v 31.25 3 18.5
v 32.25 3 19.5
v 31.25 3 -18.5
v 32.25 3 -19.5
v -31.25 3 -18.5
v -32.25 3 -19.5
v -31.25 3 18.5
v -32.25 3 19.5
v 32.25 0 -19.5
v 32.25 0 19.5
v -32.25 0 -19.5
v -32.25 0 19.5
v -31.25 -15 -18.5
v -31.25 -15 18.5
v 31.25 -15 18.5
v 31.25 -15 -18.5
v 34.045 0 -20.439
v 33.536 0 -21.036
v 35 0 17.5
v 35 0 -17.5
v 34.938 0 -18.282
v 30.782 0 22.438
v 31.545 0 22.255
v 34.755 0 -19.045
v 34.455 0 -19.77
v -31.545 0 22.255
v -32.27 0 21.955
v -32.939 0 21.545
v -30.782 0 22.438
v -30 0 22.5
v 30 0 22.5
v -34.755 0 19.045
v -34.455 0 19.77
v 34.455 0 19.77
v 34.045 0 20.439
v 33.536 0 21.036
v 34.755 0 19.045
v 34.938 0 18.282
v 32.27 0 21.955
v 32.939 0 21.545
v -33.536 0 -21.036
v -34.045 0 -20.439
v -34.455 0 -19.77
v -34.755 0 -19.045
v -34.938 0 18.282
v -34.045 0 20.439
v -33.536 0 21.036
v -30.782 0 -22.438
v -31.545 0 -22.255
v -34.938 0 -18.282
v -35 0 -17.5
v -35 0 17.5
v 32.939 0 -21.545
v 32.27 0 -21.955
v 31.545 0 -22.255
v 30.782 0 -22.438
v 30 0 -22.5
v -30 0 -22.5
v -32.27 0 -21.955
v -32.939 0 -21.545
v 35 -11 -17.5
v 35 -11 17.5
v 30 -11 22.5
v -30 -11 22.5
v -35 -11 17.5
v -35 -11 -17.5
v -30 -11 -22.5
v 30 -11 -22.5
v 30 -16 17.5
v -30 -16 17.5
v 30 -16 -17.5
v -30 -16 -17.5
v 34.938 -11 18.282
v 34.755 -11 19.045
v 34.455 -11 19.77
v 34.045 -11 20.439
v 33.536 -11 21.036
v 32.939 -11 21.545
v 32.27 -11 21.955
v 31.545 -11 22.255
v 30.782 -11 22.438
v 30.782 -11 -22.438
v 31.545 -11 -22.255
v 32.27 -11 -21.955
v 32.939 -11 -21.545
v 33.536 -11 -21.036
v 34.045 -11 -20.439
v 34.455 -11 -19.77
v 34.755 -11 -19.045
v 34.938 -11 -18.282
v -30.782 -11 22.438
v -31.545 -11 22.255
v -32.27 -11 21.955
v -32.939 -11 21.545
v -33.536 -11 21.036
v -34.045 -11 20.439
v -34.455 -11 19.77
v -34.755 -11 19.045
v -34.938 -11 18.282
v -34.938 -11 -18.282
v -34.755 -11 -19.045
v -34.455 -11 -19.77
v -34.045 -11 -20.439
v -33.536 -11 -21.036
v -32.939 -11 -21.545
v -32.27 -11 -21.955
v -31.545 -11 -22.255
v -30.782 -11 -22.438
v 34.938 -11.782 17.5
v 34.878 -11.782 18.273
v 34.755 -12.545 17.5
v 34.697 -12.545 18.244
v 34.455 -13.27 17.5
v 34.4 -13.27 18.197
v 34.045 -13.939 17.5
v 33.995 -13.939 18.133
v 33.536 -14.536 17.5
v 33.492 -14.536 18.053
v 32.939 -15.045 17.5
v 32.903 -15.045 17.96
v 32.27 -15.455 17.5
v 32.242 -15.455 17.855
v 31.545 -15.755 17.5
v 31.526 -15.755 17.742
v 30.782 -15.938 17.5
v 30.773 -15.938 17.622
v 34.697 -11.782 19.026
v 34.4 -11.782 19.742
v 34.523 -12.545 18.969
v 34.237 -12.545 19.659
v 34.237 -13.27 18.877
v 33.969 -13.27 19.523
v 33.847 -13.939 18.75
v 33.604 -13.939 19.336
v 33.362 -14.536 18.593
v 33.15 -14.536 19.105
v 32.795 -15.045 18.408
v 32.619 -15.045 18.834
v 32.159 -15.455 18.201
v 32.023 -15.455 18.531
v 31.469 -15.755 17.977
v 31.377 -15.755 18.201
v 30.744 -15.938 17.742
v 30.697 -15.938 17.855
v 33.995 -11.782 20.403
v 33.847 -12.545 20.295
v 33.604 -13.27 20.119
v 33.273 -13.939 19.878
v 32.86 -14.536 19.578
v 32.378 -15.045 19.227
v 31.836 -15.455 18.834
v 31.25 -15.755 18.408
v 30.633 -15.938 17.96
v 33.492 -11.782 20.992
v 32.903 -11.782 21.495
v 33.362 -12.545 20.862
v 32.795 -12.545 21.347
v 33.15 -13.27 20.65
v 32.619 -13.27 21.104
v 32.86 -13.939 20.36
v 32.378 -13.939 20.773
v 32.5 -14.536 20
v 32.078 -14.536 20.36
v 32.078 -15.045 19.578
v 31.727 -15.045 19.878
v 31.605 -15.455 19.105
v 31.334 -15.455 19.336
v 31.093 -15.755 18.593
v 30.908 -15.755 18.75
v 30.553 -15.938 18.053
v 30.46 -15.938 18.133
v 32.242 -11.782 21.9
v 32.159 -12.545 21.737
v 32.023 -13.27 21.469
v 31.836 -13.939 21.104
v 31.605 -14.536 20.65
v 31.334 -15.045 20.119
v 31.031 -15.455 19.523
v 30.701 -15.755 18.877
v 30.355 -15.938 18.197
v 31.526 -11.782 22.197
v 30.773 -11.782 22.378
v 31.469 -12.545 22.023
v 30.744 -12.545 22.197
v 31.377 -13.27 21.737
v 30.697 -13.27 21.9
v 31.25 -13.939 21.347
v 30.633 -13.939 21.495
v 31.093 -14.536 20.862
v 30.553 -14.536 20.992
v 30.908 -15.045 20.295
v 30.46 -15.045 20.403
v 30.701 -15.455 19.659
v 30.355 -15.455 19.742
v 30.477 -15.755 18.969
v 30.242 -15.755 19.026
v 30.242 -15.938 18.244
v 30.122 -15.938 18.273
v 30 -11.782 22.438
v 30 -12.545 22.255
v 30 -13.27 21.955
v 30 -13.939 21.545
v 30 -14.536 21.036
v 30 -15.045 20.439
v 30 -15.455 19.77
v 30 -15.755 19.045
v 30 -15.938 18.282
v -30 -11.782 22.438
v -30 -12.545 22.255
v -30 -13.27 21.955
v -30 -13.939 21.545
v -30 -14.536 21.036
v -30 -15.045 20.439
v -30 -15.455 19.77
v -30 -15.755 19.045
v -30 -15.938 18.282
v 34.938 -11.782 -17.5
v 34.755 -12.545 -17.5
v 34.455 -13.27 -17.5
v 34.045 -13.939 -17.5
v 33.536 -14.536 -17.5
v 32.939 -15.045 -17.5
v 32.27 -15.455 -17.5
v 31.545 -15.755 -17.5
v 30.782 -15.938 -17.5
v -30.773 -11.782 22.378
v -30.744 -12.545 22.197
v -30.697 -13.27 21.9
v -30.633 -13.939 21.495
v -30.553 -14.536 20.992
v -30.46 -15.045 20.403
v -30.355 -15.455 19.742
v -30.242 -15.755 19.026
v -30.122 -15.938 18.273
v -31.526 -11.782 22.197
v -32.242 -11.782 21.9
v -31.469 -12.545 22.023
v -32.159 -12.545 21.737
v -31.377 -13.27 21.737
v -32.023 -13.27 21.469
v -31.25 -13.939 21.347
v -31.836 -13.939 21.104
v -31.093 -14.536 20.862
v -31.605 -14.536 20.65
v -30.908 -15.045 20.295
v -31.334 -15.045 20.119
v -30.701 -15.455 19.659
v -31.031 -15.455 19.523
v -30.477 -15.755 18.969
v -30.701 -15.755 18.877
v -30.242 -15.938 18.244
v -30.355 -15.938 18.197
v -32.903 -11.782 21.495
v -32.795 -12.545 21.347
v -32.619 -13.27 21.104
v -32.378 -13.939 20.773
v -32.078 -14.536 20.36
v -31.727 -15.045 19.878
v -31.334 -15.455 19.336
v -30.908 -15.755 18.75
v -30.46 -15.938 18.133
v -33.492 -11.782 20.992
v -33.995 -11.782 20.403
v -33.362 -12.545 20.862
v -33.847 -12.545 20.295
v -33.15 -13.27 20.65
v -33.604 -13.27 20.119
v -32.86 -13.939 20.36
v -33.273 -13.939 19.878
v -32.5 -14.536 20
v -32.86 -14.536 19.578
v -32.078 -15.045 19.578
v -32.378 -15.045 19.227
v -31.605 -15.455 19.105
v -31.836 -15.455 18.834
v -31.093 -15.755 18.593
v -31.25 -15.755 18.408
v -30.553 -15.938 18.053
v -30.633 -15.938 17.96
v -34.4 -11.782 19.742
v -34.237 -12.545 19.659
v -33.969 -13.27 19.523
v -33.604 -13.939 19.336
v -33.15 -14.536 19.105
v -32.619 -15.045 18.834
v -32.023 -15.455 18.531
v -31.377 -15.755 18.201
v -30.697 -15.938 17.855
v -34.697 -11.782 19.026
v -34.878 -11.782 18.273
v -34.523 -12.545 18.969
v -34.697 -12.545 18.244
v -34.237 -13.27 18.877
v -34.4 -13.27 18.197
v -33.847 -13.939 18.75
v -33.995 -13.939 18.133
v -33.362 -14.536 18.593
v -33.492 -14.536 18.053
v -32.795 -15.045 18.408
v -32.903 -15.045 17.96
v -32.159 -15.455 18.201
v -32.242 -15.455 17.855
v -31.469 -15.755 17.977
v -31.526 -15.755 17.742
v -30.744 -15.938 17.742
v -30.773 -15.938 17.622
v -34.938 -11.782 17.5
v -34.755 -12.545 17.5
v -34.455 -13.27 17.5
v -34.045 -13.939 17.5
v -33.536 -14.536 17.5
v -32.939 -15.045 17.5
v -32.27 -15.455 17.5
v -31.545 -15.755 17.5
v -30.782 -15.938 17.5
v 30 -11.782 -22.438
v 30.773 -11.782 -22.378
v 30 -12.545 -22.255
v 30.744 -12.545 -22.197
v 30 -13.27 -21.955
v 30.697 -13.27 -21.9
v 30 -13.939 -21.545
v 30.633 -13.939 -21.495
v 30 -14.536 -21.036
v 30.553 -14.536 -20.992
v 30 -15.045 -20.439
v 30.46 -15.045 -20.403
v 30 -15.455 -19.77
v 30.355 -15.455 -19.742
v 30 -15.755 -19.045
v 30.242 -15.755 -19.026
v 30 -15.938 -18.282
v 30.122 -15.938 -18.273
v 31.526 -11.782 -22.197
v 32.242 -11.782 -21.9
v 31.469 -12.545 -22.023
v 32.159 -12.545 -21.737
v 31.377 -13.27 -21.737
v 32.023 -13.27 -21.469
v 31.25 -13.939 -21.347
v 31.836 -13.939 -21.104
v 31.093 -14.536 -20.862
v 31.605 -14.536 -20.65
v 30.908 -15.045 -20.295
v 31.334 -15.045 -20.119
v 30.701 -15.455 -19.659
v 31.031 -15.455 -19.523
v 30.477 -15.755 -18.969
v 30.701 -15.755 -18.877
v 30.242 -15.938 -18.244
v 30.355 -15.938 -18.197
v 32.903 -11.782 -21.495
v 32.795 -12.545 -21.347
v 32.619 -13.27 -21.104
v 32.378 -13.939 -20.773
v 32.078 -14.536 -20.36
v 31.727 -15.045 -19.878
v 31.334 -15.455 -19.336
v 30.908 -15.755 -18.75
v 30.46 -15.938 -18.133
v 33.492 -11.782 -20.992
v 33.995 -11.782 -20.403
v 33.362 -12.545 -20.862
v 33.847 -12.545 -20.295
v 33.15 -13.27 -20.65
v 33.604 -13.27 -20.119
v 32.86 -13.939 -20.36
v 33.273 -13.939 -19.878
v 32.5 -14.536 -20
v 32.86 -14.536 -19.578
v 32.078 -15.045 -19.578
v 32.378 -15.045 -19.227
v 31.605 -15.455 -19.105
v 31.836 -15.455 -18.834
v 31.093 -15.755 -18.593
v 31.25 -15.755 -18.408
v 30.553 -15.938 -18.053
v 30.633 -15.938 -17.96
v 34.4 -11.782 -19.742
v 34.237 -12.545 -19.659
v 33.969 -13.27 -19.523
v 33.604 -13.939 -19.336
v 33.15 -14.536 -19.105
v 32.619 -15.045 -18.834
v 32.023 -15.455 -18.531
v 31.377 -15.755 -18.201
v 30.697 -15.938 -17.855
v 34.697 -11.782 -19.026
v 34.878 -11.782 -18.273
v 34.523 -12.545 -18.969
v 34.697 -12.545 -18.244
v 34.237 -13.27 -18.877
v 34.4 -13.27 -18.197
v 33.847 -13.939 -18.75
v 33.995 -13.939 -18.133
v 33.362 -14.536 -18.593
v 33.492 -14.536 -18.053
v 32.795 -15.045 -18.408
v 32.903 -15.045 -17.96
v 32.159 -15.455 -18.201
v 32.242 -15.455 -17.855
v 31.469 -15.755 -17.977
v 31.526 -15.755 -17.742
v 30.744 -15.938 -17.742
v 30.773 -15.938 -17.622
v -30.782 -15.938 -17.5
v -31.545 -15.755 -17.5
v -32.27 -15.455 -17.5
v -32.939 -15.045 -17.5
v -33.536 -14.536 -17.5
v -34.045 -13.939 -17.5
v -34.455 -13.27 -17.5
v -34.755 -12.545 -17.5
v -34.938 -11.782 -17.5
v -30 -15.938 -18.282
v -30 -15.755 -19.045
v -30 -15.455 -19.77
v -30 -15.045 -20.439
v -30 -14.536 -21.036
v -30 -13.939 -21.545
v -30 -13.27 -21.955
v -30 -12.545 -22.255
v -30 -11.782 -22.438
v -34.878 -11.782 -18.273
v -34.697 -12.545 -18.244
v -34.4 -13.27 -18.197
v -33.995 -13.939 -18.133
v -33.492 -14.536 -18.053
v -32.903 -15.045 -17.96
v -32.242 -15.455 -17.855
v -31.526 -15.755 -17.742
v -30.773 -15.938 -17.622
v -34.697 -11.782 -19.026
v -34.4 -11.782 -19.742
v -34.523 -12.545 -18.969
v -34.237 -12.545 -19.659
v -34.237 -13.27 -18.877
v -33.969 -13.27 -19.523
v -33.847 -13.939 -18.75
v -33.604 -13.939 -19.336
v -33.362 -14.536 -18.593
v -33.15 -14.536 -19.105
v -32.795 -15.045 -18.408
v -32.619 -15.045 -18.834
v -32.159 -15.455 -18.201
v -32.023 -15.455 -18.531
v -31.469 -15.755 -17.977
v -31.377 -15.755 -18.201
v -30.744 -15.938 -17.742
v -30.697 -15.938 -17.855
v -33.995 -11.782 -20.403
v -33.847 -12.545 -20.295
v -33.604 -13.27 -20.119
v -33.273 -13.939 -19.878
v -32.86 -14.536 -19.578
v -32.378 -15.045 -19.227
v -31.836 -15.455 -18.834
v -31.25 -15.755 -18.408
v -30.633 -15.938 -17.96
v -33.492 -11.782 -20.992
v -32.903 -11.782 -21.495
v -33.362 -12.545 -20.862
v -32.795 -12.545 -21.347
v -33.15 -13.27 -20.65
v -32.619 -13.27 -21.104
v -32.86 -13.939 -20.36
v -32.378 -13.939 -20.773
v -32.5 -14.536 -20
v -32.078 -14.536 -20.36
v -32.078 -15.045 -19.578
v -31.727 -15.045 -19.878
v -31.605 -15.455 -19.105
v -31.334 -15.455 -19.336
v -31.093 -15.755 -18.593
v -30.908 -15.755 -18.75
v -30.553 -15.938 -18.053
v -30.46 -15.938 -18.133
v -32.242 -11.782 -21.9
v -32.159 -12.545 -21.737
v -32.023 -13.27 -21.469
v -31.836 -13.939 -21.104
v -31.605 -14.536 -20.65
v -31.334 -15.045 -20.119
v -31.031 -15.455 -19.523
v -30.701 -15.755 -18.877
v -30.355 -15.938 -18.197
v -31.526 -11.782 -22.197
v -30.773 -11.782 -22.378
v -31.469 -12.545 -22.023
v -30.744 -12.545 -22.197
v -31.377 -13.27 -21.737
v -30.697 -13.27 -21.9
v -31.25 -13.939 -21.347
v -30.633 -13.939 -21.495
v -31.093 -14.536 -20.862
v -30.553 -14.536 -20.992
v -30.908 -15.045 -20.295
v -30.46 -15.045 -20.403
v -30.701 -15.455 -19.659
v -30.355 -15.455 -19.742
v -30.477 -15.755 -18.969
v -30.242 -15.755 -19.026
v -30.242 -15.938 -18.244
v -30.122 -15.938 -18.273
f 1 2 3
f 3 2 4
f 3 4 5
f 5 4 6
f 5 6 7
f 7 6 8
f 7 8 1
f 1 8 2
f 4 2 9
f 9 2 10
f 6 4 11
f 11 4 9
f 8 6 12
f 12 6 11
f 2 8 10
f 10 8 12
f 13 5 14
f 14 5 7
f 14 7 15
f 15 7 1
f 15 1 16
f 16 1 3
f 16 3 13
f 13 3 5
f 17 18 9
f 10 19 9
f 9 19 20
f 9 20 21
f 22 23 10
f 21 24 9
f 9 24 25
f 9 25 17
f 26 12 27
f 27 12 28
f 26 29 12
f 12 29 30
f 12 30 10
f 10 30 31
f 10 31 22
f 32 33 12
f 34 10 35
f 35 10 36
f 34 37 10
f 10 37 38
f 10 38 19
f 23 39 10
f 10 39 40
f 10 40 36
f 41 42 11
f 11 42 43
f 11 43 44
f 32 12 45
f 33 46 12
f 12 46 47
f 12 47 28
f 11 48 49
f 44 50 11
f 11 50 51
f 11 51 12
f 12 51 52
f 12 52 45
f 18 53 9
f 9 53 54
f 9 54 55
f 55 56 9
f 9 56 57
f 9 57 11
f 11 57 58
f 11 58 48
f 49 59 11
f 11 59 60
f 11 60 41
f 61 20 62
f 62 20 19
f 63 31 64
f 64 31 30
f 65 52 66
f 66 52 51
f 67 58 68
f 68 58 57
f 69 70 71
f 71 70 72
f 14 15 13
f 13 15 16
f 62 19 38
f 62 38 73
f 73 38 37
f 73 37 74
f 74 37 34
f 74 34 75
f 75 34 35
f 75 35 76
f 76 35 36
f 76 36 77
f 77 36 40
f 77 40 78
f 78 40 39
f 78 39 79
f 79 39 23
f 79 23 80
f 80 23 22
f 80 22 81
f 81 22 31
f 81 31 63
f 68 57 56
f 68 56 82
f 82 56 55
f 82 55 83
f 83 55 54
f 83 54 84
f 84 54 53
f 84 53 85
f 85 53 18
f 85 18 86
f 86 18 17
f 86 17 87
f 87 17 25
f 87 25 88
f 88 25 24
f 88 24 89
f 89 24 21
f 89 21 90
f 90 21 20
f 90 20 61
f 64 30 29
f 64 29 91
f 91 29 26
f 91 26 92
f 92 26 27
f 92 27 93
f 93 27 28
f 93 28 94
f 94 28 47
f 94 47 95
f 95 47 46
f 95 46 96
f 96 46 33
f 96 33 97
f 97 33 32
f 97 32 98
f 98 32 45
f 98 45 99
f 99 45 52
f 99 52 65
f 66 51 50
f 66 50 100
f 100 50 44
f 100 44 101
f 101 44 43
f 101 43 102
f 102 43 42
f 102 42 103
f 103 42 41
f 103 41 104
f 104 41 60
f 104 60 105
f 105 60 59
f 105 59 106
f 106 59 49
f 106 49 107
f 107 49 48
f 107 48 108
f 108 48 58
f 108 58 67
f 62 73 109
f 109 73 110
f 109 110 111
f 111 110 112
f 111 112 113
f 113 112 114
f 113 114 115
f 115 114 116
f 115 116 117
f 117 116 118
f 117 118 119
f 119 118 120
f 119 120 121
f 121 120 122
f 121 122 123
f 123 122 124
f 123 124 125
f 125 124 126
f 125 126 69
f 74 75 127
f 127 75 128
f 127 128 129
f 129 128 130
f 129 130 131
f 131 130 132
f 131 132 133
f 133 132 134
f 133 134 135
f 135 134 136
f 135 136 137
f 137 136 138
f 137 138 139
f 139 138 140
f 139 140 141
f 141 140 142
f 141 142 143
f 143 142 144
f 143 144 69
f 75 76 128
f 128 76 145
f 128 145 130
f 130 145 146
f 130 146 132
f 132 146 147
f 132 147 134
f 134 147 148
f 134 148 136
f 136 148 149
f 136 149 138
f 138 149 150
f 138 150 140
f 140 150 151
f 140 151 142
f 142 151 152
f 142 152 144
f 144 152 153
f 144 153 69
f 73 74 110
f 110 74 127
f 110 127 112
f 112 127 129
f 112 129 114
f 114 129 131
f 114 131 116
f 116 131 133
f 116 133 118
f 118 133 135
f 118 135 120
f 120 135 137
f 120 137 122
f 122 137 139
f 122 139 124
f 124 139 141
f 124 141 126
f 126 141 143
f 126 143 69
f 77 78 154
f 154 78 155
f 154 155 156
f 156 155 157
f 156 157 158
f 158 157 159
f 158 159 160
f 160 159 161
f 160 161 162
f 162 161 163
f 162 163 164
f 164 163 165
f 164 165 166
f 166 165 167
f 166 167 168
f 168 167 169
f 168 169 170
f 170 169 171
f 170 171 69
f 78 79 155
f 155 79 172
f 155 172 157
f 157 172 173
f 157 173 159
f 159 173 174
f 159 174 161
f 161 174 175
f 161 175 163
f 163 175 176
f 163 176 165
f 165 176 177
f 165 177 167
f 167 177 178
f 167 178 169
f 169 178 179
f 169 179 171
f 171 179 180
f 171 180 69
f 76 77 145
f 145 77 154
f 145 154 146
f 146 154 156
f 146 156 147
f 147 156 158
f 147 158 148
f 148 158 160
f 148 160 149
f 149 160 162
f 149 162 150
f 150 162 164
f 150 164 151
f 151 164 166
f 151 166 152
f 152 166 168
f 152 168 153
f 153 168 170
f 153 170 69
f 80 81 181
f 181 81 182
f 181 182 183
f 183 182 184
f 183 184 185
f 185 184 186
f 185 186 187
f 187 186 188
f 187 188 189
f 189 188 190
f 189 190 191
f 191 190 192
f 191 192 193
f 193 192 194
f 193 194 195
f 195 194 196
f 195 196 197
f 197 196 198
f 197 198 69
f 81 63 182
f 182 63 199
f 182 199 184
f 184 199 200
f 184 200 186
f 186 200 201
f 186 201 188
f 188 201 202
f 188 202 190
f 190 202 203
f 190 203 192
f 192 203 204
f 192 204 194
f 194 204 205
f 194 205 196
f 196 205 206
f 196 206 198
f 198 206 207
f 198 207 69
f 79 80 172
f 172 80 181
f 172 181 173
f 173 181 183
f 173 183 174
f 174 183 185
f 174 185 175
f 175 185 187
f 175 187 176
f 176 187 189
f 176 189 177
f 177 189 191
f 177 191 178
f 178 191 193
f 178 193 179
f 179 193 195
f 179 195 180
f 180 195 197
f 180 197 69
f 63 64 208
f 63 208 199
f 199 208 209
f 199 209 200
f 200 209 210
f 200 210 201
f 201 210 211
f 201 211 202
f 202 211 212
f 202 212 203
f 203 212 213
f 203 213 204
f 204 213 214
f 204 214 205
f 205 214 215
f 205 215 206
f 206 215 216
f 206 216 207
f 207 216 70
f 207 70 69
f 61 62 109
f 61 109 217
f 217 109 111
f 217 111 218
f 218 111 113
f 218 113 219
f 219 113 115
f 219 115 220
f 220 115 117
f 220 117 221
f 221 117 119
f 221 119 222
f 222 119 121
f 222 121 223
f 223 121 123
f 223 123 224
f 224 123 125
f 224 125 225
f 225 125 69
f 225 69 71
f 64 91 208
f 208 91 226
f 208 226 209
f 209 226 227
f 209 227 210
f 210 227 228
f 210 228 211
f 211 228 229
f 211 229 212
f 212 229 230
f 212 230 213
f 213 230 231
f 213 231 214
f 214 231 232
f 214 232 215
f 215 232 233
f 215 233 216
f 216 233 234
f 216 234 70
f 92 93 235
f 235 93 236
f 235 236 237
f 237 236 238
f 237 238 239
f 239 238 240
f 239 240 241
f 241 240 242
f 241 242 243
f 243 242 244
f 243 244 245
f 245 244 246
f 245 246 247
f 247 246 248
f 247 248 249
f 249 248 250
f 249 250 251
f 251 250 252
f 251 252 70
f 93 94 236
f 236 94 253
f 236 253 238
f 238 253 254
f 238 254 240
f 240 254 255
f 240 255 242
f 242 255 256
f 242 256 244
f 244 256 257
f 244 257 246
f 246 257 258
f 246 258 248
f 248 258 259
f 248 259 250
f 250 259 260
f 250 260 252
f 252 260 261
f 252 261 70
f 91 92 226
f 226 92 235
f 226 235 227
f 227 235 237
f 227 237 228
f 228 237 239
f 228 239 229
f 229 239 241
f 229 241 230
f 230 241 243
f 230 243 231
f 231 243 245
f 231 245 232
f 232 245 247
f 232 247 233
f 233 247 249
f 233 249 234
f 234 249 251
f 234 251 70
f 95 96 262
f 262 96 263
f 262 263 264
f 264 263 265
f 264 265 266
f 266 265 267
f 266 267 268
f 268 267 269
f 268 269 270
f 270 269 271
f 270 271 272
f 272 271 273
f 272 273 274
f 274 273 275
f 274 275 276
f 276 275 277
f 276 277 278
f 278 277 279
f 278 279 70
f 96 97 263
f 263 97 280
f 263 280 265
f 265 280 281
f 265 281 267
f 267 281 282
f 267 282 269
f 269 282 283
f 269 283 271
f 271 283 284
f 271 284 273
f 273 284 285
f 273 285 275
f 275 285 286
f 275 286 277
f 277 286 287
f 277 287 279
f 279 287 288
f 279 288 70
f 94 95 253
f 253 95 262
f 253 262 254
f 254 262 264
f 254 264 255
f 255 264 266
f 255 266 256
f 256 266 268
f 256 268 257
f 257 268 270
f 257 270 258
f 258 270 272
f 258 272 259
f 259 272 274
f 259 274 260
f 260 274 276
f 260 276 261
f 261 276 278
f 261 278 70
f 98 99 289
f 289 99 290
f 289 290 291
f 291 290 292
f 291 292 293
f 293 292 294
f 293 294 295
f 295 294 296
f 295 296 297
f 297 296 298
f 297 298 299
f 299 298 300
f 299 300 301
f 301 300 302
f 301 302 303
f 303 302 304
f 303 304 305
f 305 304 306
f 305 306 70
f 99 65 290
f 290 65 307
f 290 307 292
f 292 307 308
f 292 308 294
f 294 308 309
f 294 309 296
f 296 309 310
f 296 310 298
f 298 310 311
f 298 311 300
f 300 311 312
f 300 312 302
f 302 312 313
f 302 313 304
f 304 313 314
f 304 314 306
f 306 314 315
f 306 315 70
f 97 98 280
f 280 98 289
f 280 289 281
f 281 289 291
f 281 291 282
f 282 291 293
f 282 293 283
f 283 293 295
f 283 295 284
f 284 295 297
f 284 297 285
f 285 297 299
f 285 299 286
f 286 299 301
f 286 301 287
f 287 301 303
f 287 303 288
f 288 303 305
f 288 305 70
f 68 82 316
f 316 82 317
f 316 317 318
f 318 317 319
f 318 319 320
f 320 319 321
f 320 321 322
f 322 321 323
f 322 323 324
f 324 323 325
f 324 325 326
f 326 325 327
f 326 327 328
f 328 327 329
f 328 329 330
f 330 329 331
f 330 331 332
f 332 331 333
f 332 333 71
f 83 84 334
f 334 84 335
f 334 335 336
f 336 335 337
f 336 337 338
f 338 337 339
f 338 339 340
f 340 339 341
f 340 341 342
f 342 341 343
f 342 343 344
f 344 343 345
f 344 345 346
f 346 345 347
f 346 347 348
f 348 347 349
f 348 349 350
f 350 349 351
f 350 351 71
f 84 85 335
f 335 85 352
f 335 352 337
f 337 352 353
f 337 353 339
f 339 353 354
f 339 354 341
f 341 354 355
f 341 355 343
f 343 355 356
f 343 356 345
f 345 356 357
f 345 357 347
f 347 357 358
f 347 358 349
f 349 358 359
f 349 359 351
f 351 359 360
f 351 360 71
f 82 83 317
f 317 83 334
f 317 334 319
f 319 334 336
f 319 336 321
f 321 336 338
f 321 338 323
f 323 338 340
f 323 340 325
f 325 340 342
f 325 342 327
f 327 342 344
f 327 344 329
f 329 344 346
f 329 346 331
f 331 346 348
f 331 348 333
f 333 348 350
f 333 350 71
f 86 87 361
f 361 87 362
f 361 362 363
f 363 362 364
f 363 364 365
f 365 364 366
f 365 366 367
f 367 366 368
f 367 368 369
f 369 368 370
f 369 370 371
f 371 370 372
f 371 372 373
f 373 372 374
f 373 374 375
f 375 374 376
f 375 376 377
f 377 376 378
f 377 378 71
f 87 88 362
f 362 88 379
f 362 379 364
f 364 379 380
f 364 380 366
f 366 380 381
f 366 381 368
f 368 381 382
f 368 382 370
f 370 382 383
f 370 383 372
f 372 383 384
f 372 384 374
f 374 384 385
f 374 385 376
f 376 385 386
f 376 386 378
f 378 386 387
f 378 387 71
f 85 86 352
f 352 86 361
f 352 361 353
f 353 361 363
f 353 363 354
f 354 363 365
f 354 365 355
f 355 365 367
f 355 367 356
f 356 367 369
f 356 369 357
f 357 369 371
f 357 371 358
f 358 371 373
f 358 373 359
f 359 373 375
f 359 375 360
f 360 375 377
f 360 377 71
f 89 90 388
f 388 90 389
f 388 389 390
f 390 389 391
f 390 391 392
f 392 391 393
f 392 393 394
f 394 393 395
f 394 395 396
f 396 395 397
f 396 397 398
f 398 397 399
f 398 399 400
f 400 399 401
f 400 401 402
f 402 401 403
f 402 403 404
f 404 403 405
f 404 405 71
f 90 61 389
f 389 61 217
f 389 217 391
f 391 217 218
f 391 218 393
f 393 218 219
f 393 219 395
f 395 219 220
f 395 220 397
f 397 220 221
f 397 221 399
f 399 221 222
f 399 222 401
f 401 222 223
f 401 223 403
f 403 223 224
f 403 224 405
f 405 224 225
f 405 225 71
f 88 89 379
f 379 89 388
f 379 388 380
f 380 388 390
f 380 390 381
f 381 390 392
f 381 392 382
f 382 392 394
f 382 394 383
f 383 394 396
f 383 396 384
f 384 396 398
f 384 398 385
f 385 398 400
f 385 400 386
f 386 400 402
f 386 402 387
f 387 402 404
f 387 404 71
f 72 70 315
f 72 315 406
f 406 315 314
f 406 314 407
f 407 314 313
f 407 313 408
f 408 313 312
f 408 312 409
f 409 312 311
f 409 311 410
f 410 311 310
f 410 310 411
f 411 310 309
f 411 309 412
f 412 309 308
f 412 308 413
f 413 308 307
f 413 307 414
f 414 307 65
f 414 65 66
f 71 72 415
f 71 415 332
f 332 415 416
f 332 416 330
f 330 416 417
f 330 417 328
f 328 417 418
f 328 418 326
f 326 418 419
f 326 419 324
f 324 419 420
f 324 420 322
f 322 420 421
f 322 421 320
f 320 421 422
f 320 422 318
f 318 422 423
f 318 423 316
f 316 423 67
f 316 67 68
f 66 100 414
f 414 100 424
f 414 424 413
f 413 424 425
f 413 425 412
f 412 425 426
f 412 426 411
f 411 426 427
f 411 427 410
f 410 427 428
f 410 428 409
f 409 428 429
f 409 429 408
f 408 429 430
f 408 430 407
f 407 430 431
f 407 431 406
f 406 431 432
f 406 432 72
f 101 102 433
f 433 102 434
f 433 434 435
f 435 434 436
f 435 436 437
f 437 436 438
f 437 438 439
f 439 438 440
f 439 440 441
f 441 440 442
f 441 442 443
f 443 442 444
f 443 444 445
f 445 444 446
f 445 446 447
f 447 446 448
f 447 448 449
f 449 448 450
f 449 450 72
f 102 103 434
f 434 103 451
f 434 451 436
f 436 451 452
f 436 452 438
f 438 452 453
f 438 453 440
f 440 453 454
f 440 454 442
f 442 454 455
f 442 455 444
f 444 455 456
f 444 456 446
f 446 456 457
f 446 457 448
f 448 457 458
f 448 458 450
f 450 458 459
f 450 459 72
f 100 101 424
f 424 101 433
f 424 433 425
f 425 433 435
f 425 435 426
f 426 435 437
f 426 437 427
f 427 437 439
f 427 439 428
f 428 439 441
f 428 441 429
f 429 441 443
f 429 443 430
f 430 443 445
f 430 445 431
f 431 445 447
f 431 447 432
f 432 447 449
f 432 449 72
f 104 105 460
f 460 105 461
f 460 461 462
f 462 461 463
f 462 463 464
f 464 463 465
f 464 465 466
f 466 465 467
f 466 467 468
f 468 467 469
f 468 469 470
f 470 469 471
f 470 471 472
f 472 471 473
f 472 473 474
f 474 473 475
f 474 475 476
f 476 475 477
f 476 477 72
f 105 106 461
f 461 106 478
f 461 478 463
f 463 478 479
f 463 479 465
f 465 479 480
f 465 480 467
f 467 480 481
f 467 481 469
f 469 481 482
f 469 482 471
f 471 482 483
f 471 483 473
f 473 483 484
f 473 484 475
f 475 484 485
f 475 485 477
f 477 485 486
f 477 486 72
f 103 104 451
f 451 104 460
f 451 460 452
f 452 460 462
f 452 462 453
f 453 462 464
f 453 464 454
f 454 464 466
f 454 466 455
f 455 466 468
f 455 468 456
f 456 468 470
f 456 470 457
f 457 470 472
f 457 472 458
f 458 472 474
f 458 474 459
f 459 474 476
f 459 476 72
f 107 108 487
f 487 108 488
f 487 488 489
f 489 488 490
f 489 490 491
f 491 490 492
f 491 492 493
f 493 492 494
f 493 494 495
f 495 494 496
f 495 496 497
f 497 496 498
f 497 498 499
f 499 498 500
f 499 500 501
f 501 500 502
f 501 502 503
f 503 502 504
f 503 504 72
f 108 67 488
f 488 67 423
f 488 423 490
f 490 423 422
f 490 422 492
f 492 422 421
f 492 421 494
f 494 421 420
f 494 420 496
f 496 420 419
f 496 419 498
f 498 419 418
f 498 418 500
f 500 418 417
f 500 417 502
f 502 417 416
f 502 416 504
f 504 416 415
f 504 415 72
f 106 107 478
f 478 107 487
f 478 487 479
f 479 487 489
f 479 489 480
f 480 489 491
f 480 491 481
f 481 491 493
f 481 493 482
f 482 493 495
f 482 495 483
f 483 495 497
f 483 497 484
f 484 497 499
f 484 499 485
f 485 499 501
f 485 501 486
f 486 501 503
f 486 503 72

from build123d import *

# Parameters (mm, degrees)
SKETCH_1_W      = 64.5
SKETCH_1_H      = 39
SKETCH_1_W_2    = 62.5
SKETCH_1_H_2    = 37
EXTRUDE_2_DEPTH = 3
SKETCH_2_W      = 70
SKETCH_2_H      = 45
SKETCH_2_W_2    = 62.5
SKETCH_2_H_2    = 37
EXTRUDE_3_DEPTH = 15
SKETCH_4_W      = 70
SKETCH_4_H      = 1
EXTRUDE_4_DEPTH = 22.5
FILLET_1_R      = 5
FILLET_2_R      = 5


with BuildPart() as part:
    # 草图1 → 凸台-拉伸2 (new body)
    with BuildSketch(Plane(origin=(0, 0, 0), x_dir=(1, 0, 0), z_dir=(0, 1, 0))):
        Rectangle(SKETCH_1_W, SKETCH_1_H)
        Rectangle(SKETCH_1_W_2, SKETCH_1_H_2, mode=Mode.SUBTRACT)
    extrude(amount=EXTRUDE_2_DEPTH)

    # 草图2 → 凸台-拉伸3 (add)
    with BuildSketch(Plane(origin=(0, 0, 0), x_dir=(1, 0, 0), z_dir=(0, 1, 0))):
        Rectangle(SKETCH_2_W, SKETCH_2_H)
        Rectangle(SKETCH_2_W_2, SKETCH_2_H_2, mode=Mode.SUBTRACT)
    extrude(amount=-EXTRUDE_3_DEPTH)

    # 草图4 → 凸台-拉伸4 (add, symmetric)
    with BuildSketch(Plane.XY):
        with Locations((0, -15.5)):
            Rectangle(SKETCH_4_W, SKETCH_4_H)
    extrude(amount=EXTRUDE_4_DEPTH, both=True)

    # 圆角1
    fillet_1_edges = [part.edges().sort_by_distance(p)[0] for p in [
        (35, -8, -22.5),
        (35, -8, 22.5),
        (-35, -8, 22.5),
        (-35, -8, -22.5),
    ]]
    fillet(fillet_1_edges, radius=FILLET_1_R)

    # 圆角2
    fillet_2_edges = [part.edges().sort_by_distance(p)[0] for p in [
        (0, -16, 22.5),
        (35, -16, 0),
        (0, -16, -22.5),
        (-35, -16, 0),
        (-33.535533906, -16, -21.035533906),
        (-33.535533906, -16, 21.035533906),
        (33.535533906, -16, -21.035533906),
        (33.535533906, -16, 21.035533906),
    ]]
    fillet(fillet_2_edges, radius=FILLET_2_R)


solid = part.part
